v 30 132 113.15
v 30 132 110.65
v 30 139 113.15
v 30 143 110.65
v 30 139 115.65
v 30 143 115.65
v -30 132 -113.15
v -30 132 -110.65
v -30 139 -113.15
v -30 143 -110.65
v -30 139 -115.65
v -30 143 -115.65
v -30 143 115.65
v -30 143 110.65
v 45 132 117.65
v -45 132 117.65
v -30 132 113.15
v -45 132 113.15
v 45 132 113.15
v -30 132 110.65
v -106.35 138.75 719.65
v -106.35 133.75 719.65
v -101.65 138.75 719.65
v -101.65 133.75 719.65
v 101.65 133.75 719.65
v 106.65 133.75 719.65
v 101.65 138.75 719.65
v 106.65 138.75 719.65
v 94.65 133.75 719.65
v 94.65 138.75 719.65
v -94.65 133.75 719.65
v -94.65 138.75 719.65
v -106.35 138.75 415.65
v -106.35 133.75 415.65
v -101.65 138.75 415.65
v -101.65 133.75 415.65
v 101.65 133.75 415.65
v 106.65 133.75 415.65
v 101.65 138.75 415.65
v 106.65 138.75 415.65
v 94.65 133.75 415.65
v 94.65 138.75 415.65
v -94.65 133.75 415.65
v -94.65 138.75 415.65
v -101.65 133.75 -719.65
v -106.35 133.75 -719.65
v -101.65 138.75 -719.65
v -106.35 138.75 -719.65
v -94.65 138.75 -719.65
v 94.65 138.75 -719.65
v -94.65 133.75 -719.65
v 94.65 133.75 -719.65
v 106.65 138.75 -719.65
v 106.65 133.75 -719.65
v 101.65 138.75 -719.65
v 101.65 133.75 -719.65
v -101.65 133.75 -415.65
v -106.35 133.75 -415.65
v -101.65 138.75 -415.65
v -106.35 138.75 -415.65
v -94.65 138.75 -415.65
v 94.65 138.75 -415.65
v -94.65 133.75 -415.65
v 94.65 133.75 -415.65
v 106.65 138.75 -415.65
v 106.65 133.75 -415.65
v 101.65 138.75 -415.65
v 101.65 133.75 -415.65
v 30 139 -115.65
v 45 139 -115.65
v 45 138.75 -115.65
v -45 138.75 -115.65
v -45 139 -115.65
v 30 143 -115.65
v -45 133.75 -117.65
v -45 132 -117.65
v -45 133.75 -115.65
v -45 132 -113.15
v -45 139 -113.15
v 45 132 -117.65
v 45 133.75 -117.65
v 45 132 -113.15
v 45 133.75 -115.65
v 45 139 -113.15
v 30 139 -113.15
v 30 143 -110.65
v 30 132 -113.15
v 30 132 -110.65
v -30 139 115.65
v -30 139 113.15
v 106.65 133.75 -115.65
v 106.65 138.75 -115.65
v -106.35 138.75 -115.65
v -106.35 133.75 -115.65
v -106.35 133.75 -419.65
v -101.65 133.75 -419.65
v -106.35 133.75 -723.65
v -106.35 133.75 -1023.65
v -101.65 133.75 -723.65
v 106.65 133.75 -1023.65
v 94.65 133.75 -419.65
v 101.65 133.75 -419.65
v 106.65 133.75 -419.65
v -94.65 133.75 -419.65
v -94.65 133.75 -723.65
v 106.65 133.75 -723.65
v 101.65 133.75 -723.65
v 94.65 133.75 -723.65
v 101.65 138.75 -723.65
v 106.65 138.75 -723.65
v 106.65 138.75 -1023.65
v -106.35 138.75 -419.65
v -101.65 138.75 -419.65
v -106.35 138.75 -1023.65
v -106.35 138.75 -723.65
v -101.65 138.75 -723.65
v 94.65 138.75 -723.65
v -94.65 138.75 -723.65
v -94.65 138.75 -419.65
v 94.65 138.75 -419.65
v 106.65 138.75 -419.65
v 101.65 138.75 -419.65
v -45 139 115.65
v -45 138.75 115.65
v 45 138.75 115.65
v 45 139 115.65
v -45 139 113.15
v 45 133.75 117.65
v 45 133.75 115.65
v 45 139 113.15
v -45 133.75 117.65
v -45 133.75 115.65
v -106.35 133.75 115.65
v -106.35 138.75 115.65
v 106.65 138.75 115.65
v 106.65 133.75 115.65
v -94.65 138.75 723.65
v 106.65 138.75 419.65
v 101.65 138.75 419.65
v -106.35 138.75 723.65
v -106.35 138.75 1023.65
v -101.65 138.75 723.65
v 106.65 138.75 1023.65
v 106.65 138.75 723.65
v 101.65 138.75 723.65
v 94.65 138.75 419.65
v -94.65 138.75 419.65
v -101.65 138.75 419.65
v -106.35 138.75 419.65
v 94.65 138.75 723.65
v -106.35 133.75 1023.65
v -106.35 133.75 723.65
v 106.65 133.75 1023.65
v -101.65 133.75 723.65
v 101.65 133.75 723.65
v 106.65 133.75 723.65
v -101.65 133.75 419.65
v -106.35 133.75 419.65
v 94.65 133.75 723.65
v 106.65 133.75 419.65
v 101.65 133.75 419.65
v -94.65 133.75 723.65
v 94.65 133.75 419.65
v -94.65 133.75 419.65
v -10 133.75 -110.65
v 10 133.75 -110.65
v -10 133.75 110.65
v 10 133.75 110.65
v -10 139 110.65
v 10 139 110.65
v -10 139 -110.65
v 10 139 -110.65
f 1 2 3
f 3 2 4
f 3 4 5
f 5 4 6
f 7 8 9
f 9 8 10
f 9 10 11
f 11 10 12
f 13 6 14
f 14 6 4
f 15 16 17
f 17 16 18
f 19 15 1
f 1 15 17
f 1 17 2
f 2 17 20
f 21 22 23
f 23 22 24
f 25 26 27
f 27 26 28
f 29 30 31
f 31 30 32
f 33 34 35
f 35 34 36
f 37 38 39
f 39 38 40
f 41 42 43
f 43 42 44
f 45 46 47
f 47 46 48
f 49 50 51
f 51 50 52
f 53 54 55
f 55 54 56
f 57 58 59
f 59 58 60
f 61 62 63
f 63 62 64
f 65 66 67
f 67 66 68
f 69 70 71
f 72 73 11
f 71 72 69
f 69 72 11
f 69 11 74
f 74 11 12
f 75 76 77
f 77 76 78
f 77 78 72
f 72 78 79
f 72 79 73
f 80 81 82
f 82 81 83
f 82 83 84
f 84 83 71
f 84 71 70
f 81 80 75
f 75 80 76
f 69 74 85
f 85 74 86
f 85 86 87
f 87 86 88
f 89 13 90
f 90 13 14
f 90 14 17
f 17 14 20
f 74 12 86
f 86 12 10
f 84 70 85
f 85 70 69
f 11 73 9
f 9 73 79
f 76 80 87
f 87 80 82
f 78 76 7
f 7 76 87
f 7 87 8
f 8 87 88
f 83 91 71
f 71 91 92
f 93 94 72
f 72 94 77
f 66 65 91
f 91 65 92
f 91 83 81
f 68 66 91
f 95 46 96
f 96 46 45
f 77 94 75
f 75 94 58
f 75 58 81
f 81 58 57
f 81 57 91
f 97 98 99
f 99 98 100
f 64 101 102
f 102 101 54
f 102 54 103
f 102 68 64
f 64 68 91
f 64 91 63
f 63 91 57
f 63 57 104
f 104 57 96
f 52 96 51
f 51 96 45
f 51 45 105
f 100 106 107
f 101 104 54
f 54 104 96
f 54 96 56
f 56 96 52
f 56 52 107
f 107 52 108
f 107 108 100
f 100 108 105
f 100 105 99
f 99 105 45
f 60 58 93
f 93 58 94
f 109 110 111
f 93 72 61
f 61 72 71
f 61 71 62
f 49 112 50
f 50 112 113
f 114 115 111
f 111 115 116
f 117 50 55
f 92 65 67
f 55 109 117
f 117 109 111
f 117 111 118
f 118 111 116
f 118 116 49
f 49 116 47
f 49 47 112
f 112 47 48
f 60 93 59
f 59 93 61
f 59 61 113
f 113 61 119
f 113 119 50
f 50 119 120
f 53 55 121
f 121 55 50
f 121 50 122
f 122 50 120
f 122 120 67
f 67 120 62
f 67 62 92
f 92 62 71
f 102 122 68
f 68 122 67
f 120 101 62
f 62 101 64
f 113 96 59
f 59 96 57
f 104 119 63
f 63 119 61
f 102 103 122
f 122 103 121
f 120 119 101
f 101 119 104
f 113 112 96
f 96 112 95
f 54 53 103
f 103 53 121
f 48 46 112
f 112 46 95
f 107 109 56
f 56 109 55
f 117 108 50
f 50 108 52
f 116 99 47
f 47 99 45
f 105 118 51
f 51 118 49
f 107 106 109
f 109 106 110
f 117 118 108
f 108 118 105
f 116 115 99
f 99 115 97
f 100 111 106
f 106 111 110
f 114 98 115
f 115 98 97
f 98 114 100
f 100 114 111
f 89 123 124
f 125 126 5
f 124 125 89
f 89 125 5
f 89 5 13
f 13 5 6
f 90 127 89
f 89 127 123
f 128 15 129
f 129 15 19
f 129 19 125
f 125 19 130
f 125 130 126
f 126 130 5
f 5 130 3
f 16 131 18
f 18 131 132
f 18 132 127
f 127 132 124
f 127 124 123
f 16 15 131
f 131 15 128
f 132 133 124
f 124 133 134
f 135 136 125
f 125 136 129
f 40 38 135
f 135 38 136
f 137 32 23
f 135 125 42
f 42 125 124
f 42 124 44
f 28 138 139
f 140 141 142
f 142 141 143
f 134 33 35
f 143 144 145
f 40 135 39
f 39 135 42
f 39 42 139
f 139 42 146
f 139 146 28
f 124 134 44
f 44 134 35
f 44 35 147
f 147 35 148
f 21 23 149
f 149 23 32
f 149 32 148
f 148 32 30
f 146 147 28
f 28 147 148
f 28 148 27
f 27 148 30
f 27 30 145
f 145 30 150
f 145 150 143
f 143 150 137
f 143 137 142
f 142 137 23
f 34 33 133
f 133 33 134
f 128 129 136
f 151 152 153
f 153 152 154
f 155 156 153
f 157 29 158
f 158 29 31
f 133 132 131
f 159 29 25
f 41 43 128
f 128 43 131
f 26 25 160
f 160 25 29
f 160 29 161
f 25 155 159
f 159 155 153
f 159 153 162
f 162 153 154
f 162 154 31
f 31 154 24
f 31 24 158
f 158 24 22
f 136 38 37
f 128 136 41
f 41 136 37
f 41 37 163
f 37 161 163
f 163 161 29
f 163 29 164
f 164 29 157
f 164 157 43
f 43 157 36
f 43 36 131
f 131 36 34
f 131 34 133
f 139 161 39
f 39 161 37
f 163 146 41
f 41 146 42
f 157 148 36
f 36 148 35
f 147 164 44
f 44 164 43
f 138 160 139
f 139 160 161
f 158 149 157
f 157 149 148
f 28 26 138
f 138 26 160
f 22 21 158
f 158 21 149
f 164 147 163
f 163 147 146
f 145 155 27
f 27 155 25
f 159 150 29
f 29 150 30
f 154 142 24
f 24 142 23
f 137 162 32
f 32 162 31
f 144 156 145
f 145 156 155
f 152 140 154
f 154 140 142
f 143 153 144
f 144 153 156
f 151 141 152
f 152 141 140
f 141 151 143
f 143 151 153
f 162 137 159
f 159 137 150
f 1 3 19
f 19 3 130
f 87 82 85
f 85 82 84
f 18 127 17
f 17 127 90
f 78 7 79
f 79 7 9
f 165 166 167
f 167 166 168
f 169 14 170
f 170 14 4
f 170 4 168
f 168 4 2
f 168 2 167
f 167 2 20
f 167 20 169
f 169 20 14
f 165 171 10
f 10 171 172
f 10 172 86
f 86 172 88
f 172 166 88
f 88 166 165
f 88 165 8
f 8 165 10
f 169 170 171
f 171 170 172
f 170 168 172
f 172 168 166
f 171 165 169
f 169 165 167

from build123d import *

# Parameters (mm, degrees)
ESTRUSIONE_ESTRUSIONE2_DEPTH      = 150
ESTRUSIONE_ESTRUSIONE2_DEPTH_BACK = 150
ESTRUSIONE_ESTRUSIONE3_DEPTH      = 3.3
ESTRUSIONE_ESTRUSIONE3_DEPTH_BACK = 303.3
SCHIZZO3_W                        = 6.5
SCHIZZO3_H                        = 6.5
SCHIZZO11_W                       = 60
SCHIZZO11_H                       = 4
ESTRUSIONE_ESTRUSIONE10_DEPTH     = 2.5
ESTRUSIONE_ESTRUSIONE11_DEPTH     = 2.5
ESTRUSIONE_ESTRUSIONE12_DEPTH     = 4.5
SCHIZZO13_W                       = 213
SCHIZZO13_H                       = 5
ESTRUSIONE_ESTRUSIONE13_DEPTH     = 300
SCHIZZO15_W                       = 7
SCHIZZO15_H                       = 5
ESTRUSIONE_ESTRUSIONE14_DEPTH     = 4
SCHIZZO16_W                       = 213
SCHIZZO16_H                       = 5
ESTRUSIONE_ESTRUSIONE15_DEPTH     = 300
RIPETIZIONE_A_L2_COUNT            = 2
RIPETIZIONE_A_L2_PITCH            = 304
SPECCHIA2_COPY_1_SKETCH_W         = 7
SPECCHIA2_COPY_1_SKETCH_H         = 5
SPECCHIA2_COPY_1_DEPTH            = 4
SPECCHIA2_COPY_2_SKETCH_W         = 213
SPECCHIA2_COPY_2_SKETCH_H         = 5
SPECCHIA2_COPY_2_DEPTH            = 300
SCHIZZO17_W                       = 83.15
SCHIZZO17_H                       = 226.3
TAGLIO_ESTRUSIONE1_DEPTH          = 404
SCHIZZO18_W                       = 226.3
SCHIZZO18_H                       = 7
SCHIZZO18_H_2                     = 282
TAGLIO_ESTRUSIONE2_DEPTH          = 404
SCHIZZO23_W                       = 221.3
SCHIZZO23_H                       = 4
SCHIZZO23_H_2                     = 1.75
TAGLIO_ESTRUSIONE7_DEPTH          = 404
SCHIZZO24_W                       = 20
SCHIZZO24_H                       = 221.3
TAGLIO_ESTRUSIONE8_DEPTH          = 404


with BuildPart() as part:
    # Schizzo2 → Estrusione-Estrusione2 (new, two sides: drawn at the far end of the back side and taken through both)
    with BuildSketch(Plane(origin=(0, 0, 0), x_dir=(1, 0, 0), z_dir=(0, 1, 0)).offset(-ESTRUSIONE_ESTRUSIONE2_DEPTH_BACK)):
        Polygon((-113.15, 106.65), (-113.15, -106.65), (-106.65, -106.65), (-106.65, -113.15), (106.65, -113.15), (106.65, -106.65), (113.15, -106.65), (113.15, 106.65), (106.65, 106.65), (106.65, 113.15), (-106.65, 113.15), (-106.65, 106.65), align=None)
    extrude(amount=ESTRUSIONE_ESTRUSIONE2_DEPTH + ESTRUSIONE_ESTRUSIONE2_DEPTH_BACK)

    # Schizzo3 → Estrusione-Estrusione3 (add, two sides: drawn at the far end of the back side and taken through both)
    with BuildSketch(Plane.XZ.offset(150).offset(-ESTRUSIONE_ESTRUSIONE3_DEPTH_BACK)):
        with Locations((-109.9, 109.9)):
            Rectangle(SCHIZZO3_W, SCHIZZO3_H)
        with Locations((109.9, 109.9)):
            Rectangle(SCHIZZO3_W, SCHIZZO3_H)
        with Locations((109.9, -109.9)):
            Rectangle(SCHIZZO3_W, SCHIZZO3_H)
        with Locations((-109.9, -109.9)):
            Rectangle(SCHIZZO3_W, SCHIZZO3_H)
    extrude(amount=ESTRUSIONE_ESTRUSIONE3_DEPTH + ESTRUSIONE_ESTRUSIONE3_DEPTH_BACK)

    # Schizzo11 → Estrusione-Estrusione10 (add)
    with BuildSketch(Plane(origin=(0, 0, -113.15), x_dir=(-1, 0, 0), z_dir=(0, 0, -1))):
        with Locations((0, 141)):
            Rectangle(SCHIZZO11_W, SCHIZZO11_H)
    estrusione_estrusione10 = extrude(amount=ESTRUSIONE_ESTRUSIONE10_DEPTH)

    # Schizzo11<5> → Estrusione-Estrusione11 (add)
    with BuildSketch(Plane(origin=(0, 0, -113.15), x_dir=(-1, 0, 0), z_dir=(0, 0, -1))):
        Polygon((30, 139), (-30, 139), (-45, 139), (-45, 135.5), (-43, 135.5), (-43, 133.75), (0, 133.75), (43, 133.75), (43, 135.5), (45, 135.5), (45, 139), align=None)
    estrusione_estrusione11 = extrude(amount=ESTRUSIONE_ESTRUSIONE11_DEPTH)

    # Schizzo11<8> → Estrusione-Estrusione12 (add)
    with BuildSketch(Plane(origin=(0, 0, -113.15), x_dir=(-1, 0, 0), z_dir=(0, 0, -1))):
        Polygon((-43, 135.5), (-45, 135.5), (-45, 132), (45, 132), (45, 135.5), (43, 135.5), (43, 133.75), (-43, 133.75), align=None)
    estrusione_estrusione12 = extrude(amount=ESTRUSIONE_ESTRUSIONE12_DEPTH)

    # Schizzo13 → Estrusione-Estrusione13 (add)
    with BuildSketch(Plane(origin=(0, 0, -115.65), x_dir=(-1, 0, 0), z_dir=(0, 0, -1))):
        with Locations((-0.15, 136.25)):
            Rectangle(SCHIZZO13_W, SCHIZZO13_H)
    estrusione_estrusione13 = extrude(amount=ESTRUSIONE_ESTRUSIONE13_DEPTH)

    # Schizzo15 → Estrusione-Estrusione14 (add)
    with BuildSketch(Plane(origin=(0, 0, -415.65), x_dir=(-1, 0, 0), z_dir=(0, 0, -1))):
        with Locations((-98.15, 136.25)):
            Rectangle(SCHIZZO15_W, SCHIZZO15_H)
        with Locations((98.15, 136.25)):
            Rectangle(SCHIZZO15_W, SCHIZZO15_H)
    estrusione_estrusione14 = extrude(amount=ESTRUSIONE_ESTRUSIONE14_DEPTH)

    # Schizzo16 → Estrusione-Estrusione15 (add)
    with BuildSketch(Plane(origin=(0, 0, -419.65), x_dir=(-1, 0, 0), z_dir=(0, 0, -1))):
        with Locations((-0.15, 136.25)):
            Rectangle(SCHIZZO16_W, SCHIZZO16_H)
    estrusione_estrusione15 = extrude(amount=ESTRUSIONE_ESTRUSIONE15_DEPTH)

    # Ripetizione a L2: Estrusione-Estrusione14, Estrusione-Estrusione15 ×2
    with Locations(*[(0, 0, -i * RIPETIZIONE_A_L2_PITCH) for i in range(1, RIPETIZIONE_A_L2_COUNT)]):
        add(estrusione_estrusione14)
        add(estrusione_estrusione15)

    # Specchia2: Estrusione-Estrusione10, Estrusione-Estrusione11, Estrusione-Estrusione12, Estrusione-Estrusione13, Estrusione-Estrusione14, Estrusione-Estrusione15 across plane
    add(estrusione_estrusione10.mirror(Plane.XY))
    add(estrusione_estrusione11.mirror(Plane.XY))
    add(estrusione_estrusione12.mirror(Plane.XY))
    add(estrusione_estrusione13.mirror(Plane.XY))
    add(estrusione_estrusione14.mirror(Plane.XY))
    add(estrusione_estrusione15.mirror(Plane.XY))

    # Specchia2 copy 1 sketch → Specchia2 copy 1 (add)
    with BuildSketch(Plane(origin=(0, 0, 719.65), x_dir=(-1, 0, 0), z_dir=(0, 0, 1))):
        with Locations((-98.15, -136.25)):
            Rectangle(SPECCHIA2_COPY_1_SKETCH_W, SPECCHIA2_COPY_1_SKETCH_H)
        with Locations((98.15, -136.25)):
            Rectangle(SPECCHIA2_COPY_1_SKETCH_W, SPECCHIA2_COPY_1_SKETCH_H)
    extrude(amount=SPECCHIA2_COPY_1_DEPTH)

    # Specchia2 copy 2 sketch → Specchia2 copy 2 (add)
    with BuildSketch(Plane(origin=(0, 0, 723.65), x_dir=(-1, 0, 0), z_dir=(0, 0, 1))):
        with Locations((-0.15, -136.25)):
            Rectangle(SPECCHIA2_COPY_2_SKETCH_W, SPECCHIA2_COPY_2_SKETCH_H)
    extrude(amount=SPECCHIA2_COPY_2_DEPTH)

    # Schizzo17 → Taglio-Estrusione1 (cut)
    with BuildSketch(Plane(origin=(0, 150, 0), x_dir=(1, 0, 0), z_dir=(0, 1, 0))):
        with Locations((-71.575, 0)):
            Rectangle(SCHIZZO17_W, SCHIZZO17_H)
        with Locations((71.575, 0)):
            Rectangle(SCHIZZO17_W, SCHIZZO17_H)
    extrude(amount=-TAGLIO_ESTRUSIONE1_DEPTH, mode=Mode.SUBTRACT)


with BuildPart() as taglio_estrusione1_piece_1:
    # of the separate pieces the step leaves, piece 1, a body of its own (taglio_estrusione1_pieces)
    add(part.part.solids().sort_by_distance((106.65, 138.75, 723.65))[0])

    # Schizzo18 → Taglio-Estrusione2 (cut)
    with BuildSketch(Plane(origin=(30, 0, 0), x_dir=(0, 0, -1), z_dir=(1, 0, 0))):
        with Locations((0, 146.5)):
            Rectangle(SCHIZZO18_W, SCHIZZO18_H)
        with Locations((0, -9)):
            Rectangle(SCHIZZO18_W, SCHIZZO18_H_2)
    extrude(amount=-TAGLIO_ESTRUSIONE2_DEPTH, mode=Mode.SUBTRACT)

    # Schizzo23 → Taglio-Estrusione7 (cut)
    with BuildSketch(Plane(origin=(30, 0, 0), x_dir=(0, 0, -1), z_dir=(1, 0, 0))):
        with Locations((0, 141)):
            Rectangle(SCHIZZO23_W, SCHIZZO23_H)
        with Locations((0, 132.875)):
            Rectangle(SCHIZZO23_W, SCHIZZO23_H_2)
    extrude(amount=-TAGLIO_ESTRUSIONE7_DEPTH, mode=Mode.SUBTRACT)

    # Schizzo24 → Taglio-Estrusione8 (cut)
    with BuildSketch(Plane(origin=(0, 139, 0), x_dir=(1, 0, 0), z_dir=(0, 1, 0))):
        with Locations((-20, 0)):
            Rectangle(SCHIZZO24_W, SCHIZZO24_H)
        with Locations((20, 0)):
            Rectangle(SCHIZZO24_W, SCHIZZO24_H)
    extrude(amount=-TAGLIO_ESTRUSIONE8_DEPTH, mode=Mode.SUBTRACT)


with BuildPart() as taglio_estrusione1_piece_2:
    # of the separate pieces the step leaves, piece 2, a body of its own (taglio_estrusione1_pieces)
    add(part.part.solids().sort_by_distance((-106.65, 150, 113.15))[0])


with BuildPart() as taglio_estrusione1_piece_3:
    # of the separate pieces the step leaves, piece 3, a body of its own (taglio_estrusione1_pieces)
    add(part.part.solids().sort_by_distance((-106.65, 150, -106.65))[0])


with BuildPart() as taglio_estrusione1_piece_4:
    # of the separate pieces the step leaves, piece 4, a body of its own (taglio_estrusione1_pieces)
    add(part.part.solids().sort_by_distance((113.15, 150, -106.65))[0])


with BuildPart() as taglio_estrusione1_piece_5:
    # of the separate pieces the step leaves, piece 5, a body of its own (taglio_estrusione1_pieces)
    add(part.part.solids().sort_by_distance((106.65, 150, 113.15))[0])


solid = taglio_estrusione1_piece_1.part
